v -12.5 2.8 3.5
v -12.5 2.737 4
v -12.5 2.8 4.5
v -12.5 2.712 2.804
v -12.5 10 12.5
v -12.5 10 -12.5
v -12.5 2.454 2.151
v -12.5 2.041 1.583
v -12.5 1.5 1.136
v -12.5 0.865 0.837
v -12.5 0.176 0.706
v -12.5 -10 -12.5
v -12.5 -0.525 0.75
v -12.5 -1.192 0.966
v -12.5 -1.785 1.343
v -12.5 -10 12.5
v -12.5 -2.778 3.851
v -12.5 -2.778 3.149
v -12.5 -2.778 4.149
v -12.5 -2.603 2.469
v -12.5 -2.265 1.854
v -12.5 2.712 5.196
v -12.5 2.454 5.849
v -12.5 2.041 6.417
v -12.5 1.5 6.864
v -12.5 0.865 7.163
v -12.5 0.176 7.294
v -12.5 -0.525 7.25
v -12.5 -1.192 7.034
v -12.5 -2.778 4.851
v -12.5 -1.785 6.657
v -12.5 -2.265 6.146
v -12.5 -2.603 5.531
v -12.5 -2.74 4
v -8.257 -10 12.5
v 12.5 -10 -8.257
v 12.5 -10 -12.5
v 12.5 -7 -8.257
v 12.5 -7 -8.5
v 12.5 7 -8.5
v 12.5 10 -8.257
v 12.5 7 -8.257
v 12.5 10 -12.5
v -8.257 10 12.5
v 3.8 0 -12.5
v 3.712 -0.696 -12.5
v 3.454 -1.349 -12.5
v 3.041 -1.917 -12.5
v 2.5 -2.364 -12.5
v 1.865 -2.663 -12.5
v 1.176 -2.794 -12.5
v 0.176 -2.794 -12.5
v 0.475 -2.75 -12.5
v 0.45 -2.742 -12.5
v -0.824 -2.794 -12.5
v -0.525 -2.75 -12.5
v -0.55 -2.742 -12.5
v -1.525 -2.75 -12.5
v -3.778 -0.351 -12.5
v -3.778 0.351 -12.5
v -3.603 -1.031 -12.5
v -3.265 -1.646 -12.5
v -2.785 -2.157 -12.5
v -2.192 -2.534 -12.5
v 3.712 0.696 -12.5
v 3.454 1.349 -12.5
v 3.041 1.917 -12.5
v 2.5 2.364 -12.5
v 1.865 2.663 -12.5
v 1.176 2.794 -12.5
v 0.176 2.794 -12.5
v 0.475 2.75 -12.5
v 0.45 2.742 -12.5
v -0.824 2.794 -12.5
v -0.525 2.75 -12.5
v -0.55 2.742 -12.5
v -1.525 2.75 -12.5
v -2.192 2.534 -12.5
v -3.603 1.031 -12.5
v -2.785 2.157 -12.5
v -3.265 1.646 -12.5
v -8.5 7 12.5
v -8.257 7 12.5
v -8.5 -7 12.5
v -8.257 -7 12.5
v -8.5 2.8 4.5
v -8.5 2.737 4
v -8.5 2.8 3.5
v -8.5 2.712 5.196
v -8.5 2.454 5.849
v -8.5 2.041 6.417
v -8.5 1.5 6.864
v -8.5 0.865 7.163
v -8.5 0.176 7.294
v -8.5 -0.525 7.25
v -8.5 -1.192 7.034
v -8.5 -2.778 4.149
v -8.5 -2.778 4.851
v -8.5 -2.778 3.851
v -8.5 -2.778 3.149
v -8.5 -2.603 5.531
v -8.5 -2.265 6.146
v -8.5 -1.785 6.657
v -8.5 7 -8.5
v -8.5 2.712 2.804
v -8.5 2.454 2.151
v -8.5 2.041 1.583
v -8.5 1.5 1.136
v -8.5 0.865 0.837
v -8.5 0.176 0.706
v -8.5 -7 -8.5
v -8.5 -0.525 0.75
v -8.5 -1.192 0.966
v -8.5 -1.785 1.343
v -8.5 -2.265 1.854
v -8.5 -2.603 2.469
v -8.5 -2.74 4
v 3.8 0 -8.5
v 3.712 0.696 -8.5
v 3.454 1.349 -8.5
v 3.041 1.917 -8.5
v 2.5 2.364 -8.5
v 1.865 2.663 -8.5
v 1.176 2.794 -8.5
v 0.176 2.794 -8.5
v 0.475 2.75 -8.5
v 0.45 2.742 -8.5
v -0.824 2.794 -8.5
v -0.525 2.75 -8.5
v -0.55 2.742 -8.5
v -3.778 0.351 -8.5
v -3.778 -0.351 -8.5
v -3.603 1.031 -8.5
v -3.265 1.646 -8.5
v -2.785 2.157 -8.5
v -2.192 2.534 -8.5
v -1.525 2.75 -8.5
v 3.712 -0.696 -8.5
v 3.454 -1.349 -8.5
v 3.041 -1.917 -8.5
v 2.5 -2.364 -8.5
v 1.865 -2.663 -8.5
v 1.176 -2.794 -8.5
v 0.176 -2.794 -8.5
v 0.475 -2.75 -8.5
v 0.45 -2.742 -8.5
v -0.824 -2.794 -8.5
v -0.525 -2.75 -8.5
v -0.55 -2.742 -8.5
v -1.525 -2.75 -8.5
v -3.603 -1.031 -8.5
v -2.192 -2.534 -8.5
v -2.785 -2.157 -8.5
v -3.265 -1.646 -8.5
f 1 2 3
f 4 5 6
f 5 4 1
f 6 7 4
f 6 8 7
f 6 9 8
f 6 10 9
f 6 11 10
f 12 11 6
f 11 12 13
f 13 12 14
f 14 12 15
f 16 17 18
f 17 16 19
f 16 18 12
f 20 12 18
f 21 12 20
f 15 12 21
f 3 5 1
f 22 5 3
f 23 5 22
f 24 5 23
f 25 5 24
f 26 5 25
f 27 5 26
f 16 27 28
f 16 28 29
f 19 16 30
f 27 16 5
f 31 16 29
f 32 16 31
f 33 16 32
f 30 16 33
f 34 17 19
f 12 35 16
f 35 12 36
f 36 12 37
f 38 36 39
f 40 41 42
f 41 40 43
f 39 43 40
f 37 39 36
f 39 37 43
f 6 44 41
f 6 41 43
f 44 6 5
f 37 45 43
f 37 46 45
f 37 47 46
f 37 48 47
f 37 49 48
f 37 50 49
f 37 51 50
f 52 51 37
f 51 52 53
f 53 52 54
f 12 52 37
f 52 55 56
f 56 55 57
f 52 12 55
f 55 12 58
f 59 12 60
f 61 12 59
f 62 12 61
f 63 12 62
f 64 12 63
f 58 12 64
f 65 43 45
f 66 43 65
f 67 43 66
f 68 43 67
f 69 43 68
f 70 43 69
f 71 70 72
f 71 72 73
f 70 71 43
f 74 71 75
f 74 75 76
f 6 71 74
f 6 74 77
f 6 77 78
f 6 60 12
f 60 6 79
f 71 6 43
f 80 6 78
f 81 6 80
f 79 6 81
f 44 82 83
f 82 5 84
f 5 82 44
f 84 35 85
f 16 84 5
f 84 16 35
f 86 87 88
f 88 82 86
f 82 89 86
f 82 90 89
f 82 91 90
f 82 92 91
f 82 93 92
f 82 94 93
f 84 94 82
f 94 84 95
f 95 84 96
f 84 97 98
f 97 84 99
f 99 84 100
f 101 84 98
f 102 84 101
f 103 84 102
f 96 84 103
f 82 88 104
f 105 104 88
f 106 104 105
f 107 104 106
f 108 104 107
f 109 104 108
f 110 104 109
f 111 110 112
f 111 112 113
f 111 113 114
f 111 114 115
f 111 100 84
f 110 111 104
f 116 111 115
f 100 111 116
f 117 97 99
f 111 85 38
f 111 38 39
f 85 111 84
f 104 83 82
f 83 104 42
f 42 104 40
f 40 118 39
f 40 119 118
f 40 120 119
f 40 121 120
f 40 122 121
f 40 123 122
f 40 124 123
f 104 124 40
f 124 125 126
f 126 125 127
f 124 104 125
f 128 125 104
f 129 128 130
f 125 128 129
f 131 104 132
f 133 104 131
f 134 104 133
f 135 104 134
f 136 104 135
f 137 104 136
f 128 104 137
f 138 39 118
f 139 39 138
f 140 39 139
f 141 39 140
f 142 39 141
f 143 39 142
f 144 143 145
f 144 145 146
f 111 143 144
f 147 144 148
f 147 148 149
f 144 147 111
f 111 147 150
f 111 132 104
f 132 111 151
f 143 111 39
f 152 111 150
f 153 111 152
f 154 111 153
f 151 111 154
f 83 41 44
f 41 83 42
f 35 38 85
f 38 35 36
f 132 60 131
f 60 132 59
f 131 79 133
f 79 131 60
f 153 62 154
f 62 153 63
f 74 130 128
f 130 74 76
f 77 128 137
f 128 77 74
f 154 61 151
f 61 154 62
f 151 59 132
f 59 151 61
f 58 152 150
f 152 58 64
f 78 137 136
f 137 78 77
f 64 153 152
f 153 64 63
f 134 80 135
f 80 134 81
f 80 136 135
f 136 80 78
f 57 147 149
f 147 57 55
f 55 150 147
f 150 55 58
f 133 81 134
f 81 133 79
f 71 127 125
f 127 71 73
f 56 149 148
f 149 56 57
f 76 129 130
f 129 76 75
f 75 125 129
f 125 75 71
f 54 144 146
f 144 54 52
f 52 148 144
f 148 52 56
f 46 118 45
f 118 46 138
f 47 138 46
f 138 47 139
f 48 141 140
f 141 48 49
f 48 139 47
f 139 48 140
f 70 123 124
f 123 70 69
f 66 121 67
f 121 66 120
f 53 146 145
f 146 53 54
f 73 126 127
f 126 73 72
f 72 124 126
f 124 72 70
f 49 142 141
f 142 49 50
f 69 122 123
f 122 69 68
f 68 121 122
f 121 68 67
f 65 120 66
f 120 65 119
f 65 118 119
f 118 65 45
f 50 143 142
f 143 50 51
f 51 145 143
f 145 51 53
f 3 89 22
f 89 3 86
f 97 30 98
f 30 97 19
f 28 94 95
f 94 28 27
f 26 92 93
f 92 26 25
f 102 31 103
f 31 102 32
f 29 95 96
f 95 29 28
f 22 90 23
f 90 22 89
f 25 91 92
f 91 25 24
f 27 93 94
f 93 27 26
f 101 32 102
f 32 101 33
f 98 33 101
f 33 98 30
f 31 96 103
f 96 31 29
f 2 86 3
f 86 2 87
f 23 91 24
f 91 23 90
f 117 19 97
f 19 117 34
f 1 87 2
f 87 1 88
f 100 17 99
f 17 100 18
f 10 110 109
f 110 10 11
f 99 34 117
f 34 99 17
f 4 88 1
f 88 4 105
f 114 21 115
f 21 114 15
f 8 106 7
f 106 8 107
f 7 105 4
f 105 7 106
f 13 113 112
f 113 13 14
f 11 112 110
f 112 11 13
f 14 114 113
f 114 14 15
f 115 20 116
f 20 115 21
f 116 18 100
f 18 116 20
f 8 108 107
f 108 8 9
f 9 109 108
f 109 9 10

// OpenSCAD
// 90 degree bracket

$fn = 25;
length = 25;  // default 45
width = 20;
walls = 3;

rHole = 2.8;

rotate([90, 0, 0])
difference()
{
    cube([length, length, width], center=true);
    
    translate([4, 4, 0])
    cube([length, length, width-(walls * 2)], center=true);
    
    rotate([0,0,45])
    translate([length/2 + 3, 0, 0])
    cube([length, length + 20, width+2], center= true);
    
    // bottom screw holes
    translate([-1, -length/2 + 5, 0])
    rotate([90, 0, 0])
    #cylinder(r=rHole, h=10);

    translate([0, -length/2 + 5, 0])
    rotate([90, 0, 0])
    #cylinder(r=rHole, h=10);
    
    translate([1, -length/2 + 5, 0])
    rotate([90, 0, 0])
    #cylinder(r=rHole, h=10);
    
    
    // side screw holes
    translate([-length/2 - 5, length/2 - 8, 0])
    rotate([0, 90, 0])
    #cylinder(r=rHole, h=10);

    translate([-length/2 - 5, -length/2 + 16, 0])
    rotate([0, 90, 0])
    #cylinder(r=rHole, h=10);
}
